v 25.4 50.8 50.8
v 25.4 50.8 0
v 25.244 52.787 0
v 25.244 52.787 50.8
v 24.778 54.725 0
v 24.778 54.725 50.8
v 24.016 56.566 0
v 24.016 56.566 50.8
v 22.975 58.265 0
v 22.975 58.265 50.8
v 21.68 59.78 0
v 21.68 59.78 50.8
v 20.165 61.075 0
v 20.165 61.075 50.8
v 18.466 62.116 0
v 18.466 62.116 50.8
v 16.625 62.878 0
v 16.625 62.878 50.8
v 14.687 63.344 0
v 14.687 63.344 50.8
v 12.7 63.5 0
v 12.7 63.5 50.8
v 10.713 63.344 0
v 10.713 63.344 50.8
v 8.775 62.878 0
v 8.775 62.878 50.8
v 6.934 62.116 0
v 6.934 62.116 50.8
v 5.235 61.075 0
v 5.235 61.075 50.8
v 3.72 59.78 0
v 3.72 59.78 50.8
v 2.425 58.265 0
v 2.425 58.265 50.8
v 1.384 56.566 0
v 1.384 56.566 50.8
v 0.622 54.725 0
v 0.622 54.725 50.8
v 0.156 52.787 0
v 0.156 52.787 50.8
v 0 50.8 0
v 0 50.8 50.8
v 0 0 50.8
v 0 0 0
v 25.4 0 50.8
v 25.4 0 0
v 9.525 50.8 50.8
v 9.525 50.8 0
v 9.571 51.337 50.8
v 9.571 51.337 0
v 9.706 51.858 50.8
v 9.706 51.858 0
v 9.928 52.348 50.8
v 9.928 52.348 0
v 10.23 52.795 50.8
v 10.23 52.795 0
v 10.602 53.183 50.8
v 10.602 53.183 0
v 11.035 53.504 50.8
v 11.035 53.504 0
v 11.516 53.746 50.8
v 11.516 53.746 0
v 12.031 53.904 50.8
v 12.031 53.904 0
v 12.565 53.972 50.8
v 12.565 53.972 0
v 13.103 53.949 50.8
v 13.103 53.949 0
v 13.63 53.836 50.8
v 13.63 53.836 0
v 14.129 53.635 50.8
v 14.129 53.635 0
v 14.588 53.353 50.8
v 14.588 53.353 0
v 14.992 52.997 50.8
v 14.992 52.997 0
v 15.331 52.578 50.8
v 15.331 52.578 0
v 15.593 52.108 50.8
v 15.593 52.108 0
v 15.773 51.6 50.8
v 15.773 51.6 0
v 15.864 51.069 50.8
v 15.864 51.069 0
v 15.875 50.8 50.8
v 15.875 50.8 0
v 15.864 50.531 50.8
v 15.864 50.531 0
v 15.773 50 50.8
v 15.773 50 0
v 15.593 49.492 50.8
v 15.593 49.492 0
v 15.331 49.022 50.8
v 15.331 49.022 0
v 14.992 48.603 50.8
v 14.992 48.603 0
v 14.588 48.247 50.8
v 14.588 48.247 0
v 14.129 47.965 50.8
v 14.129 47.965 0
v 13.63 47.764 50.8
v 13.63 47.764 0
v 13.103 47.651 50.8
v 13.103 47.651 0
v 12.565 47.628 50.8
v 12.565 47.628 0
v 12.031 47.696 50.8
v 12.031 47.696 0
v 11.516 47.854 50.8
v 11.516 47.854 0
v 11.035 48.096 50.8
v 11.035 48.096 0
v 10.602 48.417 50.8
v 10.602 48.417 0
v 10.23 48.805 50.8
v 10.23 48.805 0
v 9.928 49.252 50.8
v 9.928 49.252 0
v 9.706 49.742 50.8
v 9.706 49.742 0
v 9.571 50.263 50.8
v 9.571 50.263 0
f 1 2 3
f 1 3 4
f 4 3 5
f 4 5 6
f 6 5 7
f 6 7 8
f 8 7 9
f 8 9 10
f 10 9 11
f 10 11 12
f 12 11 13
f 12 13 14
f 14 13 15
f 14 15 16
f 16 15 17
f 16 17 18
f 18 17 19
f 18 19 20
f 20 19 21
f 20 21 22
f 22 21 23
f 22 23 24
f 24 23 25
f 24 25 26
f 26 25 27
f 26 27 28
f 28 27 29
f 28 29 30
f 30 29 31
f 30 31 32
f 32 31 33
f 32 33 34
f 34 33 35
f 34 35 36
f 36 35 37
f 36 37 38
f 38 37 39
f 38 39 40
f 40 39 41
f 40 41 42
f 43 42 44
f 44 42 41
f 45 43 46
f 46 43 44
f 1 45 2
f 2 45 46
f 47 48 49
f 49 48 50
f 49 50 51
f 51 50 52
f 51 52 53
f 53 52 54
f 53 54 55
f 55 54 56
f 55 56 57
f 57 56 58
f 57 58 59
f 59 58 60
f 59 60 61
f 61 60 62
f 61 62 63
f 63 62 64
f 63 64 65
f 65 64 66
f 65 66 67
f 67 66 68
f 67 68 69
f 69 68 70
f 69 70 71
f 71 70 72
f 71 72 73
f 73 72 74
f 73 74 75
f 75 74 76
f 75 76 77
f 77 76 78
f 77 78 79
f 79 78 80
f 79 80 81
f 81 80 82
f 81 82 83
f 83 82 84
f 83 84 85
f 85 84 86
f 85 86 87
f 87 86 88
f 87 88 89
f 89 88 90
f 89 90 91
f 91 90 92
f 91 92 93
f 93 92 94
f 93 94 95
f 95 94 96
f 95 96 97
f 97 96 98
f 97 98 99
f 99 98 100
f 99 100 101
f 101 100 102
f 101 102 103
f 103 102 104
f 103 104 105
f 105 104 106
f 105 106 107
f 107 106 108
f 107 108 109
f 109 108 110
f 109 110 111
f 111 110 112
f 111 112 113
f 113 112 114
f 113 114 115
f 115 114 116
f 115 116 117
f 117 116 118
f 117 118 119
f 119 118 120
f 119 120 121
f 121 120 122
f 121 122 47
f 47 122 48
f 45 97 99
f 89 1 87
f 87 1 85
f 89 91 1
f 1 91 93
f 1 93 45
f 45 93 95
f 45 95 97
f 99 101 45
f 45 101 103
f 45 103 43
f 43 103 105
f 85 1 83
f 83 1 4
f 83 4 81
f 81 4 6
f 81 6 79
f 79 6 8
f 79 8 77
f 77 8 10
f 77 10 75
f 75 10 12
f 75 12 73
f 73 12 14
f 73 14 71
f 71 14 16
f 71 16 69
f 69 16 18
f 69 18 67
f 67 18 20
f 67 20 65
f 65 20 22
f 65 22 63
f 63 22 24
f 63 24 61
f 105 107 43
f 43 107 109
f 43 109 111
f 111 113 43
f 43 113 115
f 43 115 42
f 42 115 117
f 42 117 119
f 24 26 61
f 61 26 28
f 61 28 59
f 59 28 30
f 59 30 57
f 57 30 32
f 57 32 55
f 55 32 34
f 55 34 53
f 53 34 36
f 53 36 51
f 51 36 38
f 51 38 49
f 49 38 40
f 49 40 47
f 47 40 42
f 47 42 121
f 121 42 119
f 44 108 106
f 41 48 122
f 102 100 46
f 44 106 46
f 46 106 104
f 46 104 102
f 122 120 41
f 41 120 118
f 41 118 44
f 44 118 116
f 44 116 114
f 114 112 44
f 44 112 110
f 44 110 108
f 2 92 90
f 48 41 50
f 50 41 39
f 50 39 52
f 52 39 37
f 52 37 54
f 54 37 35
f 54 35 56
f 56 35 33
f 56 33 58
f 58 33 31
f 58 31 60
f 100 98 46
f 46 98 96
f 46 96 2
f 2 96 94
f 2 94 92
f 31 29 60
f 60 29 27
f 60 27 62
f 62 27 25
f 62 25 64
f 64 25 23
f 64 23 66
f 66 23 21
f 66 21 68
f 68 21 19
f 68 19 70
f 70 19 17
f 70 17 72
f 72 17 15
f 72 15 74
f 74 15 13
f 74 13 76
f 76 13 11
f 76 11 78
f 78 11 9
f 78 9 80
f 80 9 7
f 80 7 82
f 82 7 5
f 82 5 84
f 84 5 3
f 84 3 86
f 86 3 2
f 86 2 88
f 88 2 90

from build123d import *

# Parameters (mm, degrees)
BOSS_EXTRUDE1_DEPTH = 50.8


with BuildPart() as part:
    # Sketch1 → Boss-Extrude1 (new body)
    with BuildSketch(Plane.XY):
        with BuildLine():
            ThreePointArc((25.4, 50.8), (12.7, 63.5), (0, 50.8))
            Line((0, 50.8), (9.525, 50.8))
            ThreePointArc((9.525, 50.8), (12.7, 53.975), (15.875, 50.8))
            Line((15.875, 50.8), (25.4, 50.8))
        make_face()
        with BuildLine():
            Line((9.525, 50.8), (0, 50.8))
            ThreePointArc((0, 50.8), (12.7, 38.1), (25.4, 50.8))
            Line((25.4, 50.8), (15.875, 50.8))
            ThreePointArc((15.875, 50.8), (12.7, 47.625), (9.525, 50.8))
        make_face()
        with BuildLine():
            Line((0, 50.8), (0, 0))
            Line((0, 0), (25.4, 0))
            Line((25.4, 0), (25.4, 50.8))
            ThreePointArc((25.4, 50.8), (12.7, 38.1), (0, 50.8))
        make_face()
    extrude(amount=BOSS_EXTRUDE1_DEPTH)


solid = part.part
